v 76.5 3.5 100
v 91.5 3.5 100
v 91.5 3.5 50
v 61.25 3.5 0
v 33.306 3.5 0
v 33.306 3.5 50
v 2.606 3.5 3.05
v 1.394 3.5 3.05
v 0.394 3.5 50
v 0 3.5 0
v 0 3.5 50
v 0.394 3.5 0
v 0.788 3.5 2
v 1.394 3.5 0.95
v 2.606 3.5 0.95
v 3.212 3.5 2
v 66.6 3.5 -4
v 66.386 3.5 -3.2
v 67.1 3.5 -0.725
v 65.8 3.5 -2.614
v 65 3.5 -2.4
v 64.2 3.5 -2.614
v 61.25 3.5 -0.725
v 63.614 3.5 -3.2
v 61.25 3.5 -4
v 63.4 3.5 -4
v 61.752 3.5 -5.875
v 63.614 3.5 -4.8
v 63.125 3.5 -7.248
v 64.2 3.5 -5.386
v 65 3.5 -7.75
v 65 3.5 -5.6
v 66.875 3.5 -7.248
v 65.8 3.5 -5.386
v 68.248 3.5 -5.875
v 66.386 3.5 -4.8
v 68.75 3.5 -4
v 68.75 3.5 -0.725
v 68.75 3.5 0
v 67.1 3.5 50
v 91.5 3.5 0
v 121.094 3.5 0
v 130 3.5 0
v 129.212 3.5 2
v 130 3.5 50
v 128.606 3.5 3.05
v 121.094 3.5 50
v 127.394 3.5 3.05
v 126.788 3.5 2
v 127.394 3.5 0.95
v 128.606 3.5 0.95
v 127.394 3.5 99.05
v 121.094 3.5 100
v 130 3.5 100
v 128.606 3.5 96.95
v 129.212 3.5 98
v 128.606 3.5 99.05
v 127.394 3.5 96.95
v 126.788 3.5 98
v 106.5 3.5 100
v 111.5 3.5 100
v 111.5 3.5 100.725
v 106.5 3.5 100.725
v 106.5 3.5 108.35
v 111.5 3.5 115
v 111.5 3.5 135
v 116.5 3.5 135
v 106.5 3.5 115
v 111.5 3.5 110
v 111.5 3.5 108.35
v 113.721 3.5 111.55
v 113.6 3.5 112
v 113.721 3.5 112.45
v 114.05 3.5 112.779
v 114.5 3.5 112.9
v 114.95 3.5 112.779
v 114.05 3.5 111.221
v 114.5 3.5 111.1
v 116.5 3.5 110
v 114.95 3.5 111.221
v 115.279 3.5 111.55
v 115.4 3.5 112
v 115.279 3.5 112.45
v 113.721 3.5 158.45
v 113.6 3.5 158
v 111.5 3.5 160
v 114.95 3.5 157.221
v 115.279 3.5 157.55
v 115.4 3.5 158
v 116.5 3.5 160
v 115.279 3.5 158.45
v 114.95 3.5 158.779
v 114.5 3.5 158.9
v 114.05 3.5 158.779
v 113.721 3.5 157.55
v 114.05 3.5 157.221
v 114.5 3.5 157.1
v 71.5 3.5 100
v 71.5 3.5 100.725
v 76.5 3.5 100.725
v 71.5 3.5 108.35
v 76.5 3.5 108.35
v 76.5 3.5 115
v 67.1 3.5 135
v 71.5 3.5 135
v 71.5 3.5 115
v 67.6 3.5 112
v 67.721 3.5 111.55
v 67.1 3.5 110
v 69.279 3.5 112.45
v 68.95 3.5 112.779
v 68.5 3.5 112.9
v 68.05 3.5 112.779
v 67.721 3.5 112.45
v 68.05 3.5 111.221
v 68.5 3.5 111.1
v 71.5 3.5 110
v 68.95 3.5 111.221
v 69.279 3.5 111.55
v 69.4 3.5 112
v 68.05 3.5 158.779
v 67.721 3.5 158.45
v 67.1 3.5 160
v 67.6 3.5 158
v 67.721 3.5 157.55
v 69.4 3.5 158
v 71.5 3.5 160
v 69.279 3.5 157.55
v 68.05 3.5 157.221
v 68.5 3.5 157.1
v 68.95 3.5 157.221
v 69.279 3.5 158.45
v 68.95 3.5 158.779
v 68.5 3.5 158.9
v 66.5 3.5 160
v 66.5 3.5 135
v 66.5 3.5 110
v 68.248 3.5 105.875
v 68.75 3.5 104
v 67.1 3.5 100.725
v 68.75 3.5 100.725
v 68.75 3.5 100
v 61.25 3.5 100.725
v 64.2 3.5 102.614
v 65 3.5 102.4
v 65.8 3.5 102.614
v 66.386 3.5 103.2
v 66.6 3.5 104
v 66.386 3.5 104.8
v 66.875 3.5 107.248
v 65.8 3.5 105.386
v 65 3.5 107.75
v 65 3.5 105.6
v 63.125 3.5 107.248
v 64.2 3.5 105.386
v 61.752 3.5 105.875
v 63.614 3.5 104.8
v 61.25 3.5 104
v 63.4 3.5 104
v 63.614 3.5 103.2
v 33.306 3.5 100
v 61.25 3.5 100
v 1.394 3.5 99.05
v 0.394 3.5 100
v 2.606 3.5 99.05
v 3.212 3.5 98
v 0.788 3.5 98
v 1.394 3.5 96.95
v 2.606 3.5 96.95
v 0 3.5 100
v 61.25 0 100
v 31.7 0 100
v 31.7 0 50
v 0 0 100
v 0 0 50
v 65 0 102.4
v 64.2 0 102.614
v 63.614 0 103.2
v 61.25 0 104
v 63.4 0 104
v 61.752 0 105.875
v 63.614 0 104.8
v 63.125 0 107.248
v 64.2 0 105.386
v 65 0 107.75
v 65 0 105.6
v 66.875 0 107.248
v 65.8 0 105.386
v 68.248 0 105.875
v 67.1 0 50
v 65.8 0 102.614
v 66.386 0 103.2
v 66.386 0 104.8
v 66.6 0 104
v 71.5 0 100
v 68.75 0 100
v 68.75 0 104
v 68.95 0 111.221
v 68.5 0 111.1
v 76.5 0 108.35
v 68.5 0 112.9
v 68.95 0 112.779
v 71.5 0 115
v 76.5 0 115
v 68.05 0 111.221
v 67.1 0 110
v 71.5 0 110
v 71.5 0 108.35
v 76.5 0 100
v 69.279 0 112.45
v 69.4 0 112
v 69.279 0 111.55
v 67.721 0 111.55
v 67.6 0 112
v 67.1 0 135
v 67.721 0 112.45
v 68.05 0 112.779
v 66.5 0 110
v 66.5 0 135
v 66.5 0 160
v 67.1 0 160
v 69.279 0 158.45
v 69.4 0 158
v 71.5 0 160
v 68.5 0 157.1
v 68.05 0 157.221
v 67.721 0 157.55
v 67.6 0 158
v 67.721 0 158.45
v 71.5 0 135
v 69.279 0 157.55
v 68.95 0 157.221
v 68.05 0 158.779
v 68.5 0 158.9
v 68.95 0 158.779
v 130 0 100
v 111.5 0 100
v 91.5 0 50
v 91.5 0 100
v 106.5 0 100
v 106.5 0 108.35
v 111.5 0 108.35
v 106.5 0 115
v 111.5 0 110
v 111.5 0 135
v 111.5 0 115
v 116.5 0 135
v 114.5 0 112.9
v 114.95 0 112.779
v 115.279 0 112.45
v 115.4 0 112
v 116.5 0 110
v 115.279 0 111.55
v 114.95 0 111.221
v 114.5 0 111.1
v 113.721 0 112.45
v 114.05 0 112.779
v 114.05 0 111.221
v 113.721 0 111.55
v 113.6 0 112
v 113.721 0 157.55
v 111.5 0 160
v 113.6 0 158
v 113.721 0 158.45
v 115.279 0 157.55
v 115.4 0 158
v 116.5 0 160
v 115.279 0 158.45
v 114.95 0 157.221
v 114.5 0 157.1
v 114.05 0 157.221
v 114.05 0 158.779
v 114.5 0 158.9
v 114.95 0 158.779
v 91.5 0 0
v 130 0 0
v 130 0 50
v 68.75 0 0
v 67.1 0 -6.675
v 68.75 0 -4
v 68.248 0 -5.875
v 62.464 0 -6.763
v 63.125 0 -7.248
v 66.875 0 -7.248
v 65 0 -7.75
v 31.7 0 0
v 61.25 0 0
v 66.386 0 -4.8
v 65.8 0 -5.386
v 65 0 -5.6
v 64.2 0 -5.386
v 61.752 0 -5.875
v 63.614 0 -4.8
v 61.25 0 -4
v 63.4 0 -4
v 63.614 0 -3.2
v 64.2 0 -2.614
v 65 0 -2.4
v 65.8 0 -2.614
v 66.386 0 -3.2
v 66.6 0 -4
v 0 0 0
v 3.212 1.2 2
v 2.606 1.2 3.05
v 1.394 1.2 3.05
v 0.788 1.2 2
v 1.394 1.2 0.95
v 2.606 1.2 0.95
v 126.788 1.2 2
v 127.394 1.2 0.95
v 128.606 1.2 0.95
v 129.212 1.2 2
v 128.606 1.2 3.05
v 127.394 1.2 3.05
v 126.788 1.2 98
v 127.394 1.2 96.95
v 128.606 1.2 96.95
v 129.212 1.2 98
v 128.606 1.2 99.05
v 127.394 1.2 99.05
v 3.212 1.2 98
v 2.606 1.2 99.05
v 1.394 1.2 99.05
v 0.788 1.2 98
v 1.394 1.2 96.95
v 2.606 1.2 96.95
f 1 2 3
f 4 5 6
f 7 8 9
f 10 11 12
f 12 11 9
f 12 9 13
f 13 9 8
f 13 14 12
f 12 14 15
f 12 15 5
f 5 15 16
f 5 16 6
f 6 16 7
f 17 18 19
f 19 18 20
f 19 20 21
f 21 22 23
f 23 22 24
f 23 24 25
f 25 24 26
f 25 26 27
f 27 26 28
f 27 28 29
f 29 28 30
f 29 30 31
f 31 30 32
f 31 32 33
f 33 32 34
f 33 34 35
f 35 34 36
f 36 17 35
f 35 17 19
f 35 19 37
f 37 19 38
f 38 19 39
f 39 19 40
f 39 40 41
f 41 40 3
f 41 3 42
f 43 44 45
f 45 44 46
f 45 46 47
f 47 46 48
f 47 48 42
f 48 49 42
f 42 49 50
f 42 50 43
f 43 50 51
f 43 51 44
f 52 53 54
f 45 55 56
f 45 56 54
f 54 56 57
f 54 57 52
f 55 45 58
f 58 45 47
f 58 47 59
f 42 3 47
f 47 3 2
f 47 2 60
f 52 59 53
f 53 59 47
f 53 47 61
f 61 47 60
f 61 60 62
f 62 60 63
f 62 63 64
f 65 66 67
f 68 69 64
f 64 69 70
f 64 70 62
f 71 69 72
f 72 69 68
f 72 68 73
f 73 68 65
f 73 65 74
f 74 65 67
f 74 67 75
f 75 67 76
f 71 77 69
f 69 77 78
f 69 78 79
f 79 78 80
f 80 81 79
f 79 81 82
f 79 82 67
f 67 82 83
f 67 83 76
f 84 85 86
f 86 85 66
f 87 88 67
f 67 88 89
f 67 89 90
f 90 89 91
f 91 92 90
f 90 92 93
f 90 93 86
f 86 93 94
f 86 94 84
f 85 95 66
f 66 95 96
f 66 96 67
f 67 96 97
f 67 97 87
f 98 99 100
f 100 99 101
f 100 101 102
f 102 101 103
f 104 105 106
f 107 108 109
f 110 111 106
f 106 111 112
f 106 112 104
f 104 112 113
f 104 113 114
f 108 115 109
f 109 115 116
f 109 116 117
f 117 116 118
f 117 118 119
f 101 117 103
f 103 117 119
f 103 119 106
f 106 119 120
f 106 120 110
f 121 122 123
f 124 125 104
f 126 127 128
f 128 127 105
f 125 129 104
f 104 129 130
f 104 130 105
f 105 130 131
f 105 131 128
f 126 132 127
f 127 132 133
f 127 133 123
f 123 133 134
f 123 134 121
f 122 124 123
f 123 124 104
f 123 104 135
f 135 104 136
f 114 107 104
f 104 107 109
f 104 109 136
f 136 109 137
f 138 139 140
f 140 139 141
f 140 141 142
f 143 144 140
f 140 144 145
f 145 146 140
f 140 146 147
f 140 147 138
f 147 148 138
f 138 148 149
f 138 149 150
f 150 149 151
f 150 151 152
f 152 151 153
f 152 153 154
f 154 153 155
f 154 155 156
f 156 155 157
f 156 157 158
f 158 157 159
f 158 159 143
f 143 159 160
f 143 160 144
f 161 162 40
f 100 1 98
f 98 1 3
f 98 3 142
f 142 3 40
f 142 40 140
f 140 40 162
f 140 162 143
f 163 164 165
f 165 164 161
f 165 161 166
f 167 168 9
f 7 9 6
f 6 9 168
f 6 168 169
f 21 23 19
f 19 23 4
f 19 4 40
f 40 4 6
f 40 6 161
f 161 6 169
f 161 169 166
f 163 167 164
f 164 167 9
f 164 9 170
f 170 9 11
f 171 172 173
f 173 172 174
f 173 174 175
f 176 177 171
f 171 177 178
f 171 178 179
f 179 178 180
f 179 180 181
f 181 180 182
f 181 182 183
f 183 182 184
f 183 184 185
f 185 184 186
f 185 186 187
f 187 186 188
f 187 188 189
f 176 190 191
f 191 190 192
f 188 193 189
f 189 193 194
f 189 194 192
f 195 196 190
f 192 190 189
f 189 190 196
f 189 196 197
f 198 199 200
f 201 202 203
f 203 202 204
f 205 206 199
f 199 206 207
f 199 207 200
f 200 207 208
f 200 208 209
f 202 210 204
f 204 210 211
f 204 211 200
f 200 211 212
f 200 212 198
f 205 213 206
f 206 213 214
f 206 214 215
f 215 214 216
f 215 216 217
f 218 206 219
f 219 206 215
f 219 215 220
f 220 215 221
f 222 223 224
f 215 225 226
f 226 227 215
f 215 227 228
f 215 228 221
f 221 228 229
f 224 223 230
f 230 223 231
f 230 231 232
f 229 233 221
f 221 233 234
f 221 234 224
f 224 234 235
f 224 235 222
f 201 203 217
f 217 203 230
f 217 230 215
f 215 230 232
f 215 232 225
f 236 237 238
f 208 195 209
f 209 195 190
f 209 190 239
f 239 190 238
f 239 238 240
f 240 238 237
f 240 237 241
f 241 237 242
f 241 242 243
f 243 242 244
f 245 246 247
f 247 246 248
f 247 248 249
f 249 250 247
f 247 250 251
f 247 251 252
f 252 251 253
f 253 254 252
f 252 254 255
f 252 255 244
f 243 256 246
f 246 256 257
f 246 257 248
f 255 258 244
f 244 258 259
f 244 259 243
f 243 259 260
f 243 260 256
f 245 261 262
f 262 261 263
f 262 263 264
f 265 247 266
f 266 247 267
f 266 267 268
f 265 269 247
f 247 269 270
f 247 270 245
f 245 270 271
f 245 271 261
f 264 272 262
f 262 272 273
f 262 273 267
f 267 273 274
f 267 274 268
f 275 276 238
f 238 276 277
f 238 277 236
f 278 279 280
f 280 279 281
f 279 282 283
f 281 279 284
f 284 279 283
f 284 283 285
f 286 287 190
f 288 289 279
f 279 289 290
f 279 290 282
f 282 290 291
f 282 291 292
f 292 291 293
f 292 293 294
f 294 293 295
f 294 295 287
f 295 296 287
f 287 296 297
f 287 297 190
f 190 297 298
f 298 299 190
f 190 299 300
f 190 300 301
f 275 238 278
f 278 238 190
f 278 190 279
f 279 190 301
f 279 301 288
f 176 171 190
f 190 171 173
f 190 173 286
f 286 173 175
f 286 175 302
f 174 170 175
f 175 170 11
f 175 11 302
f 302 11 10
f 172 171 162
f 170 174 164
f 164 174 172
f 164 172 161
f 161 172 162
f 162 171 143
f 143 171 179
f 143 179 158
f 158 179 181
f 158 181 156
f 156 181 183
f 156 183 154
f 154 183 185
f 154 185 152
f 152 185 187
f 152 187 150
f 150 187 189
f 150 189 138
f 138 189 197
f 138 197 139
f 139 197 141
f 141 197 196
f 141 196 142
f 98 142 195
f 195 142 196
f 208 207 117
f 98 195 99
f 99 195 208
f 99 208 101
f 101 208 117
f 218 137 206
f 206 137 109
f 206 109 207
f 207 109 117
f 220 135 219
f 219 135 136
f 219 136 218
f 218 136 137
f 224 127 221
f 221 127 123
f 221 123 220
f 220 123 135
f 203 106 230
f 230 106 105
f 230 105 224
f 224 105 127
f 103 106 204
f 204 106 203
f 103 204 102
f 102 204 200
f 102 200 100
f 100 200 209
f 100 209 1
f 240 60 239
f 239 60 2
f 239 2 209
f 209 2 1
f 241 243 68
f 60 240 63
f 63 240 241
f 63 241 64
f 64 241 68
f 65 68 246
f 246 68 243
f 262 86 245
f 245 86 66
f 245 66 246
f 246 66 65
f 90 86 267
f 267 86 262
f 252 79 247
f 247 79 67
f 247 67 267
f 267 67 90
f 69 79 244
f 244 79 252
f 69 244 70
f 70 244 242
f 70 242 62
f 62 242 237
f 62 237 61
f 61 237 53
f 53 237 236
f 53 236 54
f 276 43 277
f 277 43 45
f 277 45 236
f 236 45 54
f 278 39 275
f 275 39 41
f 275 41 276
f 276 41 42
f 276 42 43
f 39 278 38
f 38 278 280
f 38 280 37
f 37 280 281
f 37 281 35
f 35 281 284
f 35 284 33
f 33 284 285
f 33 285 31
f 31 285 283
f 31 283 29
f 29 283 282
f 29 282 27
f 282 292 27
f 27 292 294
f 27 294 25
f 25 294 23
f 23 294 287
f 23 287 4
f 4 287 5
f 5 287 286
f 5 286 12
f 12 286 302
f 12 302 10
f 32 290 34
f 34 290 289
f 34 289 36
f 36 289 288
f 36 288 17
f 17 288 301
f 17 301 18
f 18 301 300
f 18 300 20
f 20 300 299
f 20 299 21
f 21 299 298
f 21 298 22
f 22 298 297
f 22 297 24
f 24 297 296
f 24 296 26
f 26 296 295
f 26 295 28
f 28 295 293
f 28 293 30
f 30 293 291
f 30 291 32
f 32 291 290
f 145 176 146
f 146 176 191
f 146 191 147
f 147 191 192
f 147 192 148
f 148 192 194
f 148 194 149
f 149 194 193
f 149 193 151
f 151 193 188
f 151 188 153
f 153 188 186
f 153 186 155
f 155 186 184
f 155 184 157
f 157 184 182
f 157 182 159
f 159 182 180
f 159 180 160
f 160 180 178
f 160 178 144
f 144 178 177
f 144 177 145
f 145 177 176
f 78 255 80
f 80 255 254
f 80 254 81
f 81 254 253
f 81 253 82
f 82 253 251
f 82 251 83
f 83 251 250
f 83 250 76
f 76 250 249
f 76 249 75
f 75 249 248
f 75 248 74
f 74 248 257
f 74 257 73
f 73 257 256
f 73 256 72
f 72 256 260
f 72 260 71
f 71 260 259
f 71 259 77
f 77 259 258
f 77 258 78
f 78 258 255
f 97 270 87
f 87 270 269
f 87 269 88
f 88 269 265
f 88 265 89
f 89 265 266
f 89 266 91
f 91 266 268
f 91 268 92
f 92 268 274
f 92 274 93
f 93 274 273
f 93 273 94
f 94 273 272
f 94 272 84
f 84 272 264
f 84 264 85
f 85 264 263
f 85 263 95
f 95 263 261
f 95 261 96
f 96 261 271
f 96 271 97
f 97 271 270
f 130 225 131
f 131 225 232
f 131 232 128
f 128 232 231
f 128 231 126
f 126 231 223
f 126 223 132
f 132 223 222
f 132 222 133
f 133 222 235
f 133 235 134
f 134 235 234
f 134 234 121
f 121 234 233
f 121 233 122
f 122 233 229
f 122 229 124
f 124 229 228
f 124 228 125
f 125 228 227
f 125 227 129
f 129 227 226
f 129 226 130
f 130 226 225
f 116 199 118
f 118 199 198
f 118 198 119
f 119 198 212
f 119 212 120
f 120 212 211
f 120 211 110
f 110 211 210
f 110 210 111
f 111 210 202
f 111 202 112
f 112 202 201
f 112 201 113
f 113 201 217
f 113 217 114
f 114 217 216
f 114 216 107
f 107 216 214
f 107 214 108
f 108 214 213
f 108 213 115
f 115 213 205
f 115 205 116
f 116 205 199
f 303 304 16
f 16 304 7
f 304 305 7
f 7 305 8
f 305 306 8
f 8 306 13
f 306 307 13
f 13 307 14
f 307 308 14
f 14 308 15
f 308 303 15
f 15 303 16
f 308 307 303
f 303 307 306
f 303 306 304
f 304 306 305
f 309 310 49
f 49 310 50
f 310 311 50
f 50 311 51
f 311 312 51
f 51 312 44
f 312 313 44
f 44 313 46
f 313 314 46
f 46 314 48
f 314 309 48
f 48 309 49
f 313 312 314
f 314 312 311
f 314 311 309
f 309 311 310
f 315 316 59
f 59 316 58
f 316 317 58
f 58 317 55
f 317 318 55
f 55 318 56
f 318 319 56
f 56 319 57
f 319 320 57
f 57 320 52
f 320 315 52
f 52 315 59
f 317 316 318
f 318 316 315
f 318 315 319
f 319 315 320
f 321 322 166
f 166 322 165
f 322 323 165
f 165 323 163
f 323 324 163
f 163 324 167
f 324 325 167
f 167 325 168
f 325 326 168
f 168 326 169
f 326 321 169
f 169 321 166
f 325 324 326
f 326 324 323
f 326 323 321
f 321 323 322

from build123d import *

# Parameters (mm, degrees)
SKETCH1_R           = 1.6
SKETCH1_R_2         = 0.9
BOSS_EXTRUDE1_DEPTH = 3.5
CUT_EXTRUDE1_DEPTH  = 2.3


with BuildPart() as part:
    # Sketch1 → Boss-Extrude1 (new body)
    with BuildSketch(Plane(origin=(0, 0, 0), x_dir=(1, 0, 0), z_dir=(0, 1, 0))):
        with BuildLine():
            Line((0, 0), (61.25, 0))
            Line((61.25, 0), (61.25, 4))
            ThreePointArc((61.25, 4), (65, 7.75), (68.75, 4))
            Line((68.75, 4), (68.75, 0))
            Line((68.75, 0), (130, 0))
            Line((130, 0), (130, -100))
            Line((130, -100), (111.5, -100))
            Line((111.5, -100), (111.5, -110))
            Line((111.5, -110), (116.5, -110))
            Line((116.5, -110), (116.5, -160))
            Line((116.5, -160), (111.5, -160))
            Line((111.5, -160), (111.5, -115))
            Line((111.5, -115), (106.5, -115))
            Line((106.5, -115), (106.5, -110))
            Line((106.5, -110), (106.5, -100))
            Line((106.5, -100), (76.5, -100))
            Line((76.5, -100), (76.5, -110))
            Line((76.5, -110), (76.5, -115))
            Line((76.5, -115), (71.5, -115))
            Line((71.5, -115), (71.5, -160))
            Line((71.5, -160), (66.5, -160))
            Line((66.5, -160), (66.5, -110))
            Line((66.5, -110), (71.5, -110))
            Line((71.5, -110), (71.5, -100))
            Line((71.5, -100), (68.75, -100))
            Line((68.75, -100), (68.75, -104))
            ThreePointArc((68.75, -104), (65, -107.75), (61.25, -104))
            Line((61.25, -104), (61.25, -100))
            Line((61.25, -100), (0, -100))
            Line((0, -100), (0, 0))
        make_face()
        with Locations(Location((65, 4, 0), (0, 0, 270))):
            Circle(SKETCH1_R, mode=Mode.SUBTRACT)
        with Locations(Location((65, -104, 0), (0, 0, 270))):
            Circle(SKETCH1_R, mode=Mode.SUBTRACT)
        with Locations(Location((114.5, -112, 0), (0, 0, 270))):
            Circle(SKETCH1_R_2, mode=Mode.SUBTRACT)
        with Locations(Location((114.5, -158, 0), (0, 0, 270))):
            Circle(SKETCH1_R_2, mode=Mode.SUBTRACT)
        with Locations(Location((68.5, -158, 0), (0, 0, 270))):
            Circle(SKETCH1_R_2, mode=Mode.SUBTRACT)
        with Locations(Location((68.5, -112, 0), (0, 0, 270))):
            Circle(SKETCH1_R_2, mode=Mode.SUBTRACT)
    extrude(amount=BOSS_EXTRUDE1_DEPTH)

    # Sketch2 → Cut-Extrude1 (cut)
    with BuildSketch(Plane(origin=(0, 3.5, 0), x_dir=(1, 0, 0), z_dir=(0, 1, 0))):
        Polygon((3.212435565, -2), (2.606217783, -0.95), (1.393782217, -0.95), (0.787564435, -2), (1.393782217, -3.05), (2.606217783, -3.05), align=None)
        Polygon((126.787564435, -2), (127.393782217, -3.05), (128.606217783, -3.05), (129.212435565, -2), (128.606217783, -0.95), (127.393782217, -0.95), align=None)
        Polygon((126.787564435, -98), (127.393782217, -99.05), (128.606217783, -99.05), (129.212435565, -98), (128.606217783, -96.95), (127.393782217, -96.95), align=None)
        Polygon((3.212435565, -98), (2.606217783, -96.95), (1.393782217, -96.95), (0.787564435, -98), (1.393782217, -99.05), (2.606217783, -99.05), align=None)
    extrude(amount=-CUT_EXTRUDE1_DEPTH, mode=Mode.SUBTRACT)


solid = part.part
